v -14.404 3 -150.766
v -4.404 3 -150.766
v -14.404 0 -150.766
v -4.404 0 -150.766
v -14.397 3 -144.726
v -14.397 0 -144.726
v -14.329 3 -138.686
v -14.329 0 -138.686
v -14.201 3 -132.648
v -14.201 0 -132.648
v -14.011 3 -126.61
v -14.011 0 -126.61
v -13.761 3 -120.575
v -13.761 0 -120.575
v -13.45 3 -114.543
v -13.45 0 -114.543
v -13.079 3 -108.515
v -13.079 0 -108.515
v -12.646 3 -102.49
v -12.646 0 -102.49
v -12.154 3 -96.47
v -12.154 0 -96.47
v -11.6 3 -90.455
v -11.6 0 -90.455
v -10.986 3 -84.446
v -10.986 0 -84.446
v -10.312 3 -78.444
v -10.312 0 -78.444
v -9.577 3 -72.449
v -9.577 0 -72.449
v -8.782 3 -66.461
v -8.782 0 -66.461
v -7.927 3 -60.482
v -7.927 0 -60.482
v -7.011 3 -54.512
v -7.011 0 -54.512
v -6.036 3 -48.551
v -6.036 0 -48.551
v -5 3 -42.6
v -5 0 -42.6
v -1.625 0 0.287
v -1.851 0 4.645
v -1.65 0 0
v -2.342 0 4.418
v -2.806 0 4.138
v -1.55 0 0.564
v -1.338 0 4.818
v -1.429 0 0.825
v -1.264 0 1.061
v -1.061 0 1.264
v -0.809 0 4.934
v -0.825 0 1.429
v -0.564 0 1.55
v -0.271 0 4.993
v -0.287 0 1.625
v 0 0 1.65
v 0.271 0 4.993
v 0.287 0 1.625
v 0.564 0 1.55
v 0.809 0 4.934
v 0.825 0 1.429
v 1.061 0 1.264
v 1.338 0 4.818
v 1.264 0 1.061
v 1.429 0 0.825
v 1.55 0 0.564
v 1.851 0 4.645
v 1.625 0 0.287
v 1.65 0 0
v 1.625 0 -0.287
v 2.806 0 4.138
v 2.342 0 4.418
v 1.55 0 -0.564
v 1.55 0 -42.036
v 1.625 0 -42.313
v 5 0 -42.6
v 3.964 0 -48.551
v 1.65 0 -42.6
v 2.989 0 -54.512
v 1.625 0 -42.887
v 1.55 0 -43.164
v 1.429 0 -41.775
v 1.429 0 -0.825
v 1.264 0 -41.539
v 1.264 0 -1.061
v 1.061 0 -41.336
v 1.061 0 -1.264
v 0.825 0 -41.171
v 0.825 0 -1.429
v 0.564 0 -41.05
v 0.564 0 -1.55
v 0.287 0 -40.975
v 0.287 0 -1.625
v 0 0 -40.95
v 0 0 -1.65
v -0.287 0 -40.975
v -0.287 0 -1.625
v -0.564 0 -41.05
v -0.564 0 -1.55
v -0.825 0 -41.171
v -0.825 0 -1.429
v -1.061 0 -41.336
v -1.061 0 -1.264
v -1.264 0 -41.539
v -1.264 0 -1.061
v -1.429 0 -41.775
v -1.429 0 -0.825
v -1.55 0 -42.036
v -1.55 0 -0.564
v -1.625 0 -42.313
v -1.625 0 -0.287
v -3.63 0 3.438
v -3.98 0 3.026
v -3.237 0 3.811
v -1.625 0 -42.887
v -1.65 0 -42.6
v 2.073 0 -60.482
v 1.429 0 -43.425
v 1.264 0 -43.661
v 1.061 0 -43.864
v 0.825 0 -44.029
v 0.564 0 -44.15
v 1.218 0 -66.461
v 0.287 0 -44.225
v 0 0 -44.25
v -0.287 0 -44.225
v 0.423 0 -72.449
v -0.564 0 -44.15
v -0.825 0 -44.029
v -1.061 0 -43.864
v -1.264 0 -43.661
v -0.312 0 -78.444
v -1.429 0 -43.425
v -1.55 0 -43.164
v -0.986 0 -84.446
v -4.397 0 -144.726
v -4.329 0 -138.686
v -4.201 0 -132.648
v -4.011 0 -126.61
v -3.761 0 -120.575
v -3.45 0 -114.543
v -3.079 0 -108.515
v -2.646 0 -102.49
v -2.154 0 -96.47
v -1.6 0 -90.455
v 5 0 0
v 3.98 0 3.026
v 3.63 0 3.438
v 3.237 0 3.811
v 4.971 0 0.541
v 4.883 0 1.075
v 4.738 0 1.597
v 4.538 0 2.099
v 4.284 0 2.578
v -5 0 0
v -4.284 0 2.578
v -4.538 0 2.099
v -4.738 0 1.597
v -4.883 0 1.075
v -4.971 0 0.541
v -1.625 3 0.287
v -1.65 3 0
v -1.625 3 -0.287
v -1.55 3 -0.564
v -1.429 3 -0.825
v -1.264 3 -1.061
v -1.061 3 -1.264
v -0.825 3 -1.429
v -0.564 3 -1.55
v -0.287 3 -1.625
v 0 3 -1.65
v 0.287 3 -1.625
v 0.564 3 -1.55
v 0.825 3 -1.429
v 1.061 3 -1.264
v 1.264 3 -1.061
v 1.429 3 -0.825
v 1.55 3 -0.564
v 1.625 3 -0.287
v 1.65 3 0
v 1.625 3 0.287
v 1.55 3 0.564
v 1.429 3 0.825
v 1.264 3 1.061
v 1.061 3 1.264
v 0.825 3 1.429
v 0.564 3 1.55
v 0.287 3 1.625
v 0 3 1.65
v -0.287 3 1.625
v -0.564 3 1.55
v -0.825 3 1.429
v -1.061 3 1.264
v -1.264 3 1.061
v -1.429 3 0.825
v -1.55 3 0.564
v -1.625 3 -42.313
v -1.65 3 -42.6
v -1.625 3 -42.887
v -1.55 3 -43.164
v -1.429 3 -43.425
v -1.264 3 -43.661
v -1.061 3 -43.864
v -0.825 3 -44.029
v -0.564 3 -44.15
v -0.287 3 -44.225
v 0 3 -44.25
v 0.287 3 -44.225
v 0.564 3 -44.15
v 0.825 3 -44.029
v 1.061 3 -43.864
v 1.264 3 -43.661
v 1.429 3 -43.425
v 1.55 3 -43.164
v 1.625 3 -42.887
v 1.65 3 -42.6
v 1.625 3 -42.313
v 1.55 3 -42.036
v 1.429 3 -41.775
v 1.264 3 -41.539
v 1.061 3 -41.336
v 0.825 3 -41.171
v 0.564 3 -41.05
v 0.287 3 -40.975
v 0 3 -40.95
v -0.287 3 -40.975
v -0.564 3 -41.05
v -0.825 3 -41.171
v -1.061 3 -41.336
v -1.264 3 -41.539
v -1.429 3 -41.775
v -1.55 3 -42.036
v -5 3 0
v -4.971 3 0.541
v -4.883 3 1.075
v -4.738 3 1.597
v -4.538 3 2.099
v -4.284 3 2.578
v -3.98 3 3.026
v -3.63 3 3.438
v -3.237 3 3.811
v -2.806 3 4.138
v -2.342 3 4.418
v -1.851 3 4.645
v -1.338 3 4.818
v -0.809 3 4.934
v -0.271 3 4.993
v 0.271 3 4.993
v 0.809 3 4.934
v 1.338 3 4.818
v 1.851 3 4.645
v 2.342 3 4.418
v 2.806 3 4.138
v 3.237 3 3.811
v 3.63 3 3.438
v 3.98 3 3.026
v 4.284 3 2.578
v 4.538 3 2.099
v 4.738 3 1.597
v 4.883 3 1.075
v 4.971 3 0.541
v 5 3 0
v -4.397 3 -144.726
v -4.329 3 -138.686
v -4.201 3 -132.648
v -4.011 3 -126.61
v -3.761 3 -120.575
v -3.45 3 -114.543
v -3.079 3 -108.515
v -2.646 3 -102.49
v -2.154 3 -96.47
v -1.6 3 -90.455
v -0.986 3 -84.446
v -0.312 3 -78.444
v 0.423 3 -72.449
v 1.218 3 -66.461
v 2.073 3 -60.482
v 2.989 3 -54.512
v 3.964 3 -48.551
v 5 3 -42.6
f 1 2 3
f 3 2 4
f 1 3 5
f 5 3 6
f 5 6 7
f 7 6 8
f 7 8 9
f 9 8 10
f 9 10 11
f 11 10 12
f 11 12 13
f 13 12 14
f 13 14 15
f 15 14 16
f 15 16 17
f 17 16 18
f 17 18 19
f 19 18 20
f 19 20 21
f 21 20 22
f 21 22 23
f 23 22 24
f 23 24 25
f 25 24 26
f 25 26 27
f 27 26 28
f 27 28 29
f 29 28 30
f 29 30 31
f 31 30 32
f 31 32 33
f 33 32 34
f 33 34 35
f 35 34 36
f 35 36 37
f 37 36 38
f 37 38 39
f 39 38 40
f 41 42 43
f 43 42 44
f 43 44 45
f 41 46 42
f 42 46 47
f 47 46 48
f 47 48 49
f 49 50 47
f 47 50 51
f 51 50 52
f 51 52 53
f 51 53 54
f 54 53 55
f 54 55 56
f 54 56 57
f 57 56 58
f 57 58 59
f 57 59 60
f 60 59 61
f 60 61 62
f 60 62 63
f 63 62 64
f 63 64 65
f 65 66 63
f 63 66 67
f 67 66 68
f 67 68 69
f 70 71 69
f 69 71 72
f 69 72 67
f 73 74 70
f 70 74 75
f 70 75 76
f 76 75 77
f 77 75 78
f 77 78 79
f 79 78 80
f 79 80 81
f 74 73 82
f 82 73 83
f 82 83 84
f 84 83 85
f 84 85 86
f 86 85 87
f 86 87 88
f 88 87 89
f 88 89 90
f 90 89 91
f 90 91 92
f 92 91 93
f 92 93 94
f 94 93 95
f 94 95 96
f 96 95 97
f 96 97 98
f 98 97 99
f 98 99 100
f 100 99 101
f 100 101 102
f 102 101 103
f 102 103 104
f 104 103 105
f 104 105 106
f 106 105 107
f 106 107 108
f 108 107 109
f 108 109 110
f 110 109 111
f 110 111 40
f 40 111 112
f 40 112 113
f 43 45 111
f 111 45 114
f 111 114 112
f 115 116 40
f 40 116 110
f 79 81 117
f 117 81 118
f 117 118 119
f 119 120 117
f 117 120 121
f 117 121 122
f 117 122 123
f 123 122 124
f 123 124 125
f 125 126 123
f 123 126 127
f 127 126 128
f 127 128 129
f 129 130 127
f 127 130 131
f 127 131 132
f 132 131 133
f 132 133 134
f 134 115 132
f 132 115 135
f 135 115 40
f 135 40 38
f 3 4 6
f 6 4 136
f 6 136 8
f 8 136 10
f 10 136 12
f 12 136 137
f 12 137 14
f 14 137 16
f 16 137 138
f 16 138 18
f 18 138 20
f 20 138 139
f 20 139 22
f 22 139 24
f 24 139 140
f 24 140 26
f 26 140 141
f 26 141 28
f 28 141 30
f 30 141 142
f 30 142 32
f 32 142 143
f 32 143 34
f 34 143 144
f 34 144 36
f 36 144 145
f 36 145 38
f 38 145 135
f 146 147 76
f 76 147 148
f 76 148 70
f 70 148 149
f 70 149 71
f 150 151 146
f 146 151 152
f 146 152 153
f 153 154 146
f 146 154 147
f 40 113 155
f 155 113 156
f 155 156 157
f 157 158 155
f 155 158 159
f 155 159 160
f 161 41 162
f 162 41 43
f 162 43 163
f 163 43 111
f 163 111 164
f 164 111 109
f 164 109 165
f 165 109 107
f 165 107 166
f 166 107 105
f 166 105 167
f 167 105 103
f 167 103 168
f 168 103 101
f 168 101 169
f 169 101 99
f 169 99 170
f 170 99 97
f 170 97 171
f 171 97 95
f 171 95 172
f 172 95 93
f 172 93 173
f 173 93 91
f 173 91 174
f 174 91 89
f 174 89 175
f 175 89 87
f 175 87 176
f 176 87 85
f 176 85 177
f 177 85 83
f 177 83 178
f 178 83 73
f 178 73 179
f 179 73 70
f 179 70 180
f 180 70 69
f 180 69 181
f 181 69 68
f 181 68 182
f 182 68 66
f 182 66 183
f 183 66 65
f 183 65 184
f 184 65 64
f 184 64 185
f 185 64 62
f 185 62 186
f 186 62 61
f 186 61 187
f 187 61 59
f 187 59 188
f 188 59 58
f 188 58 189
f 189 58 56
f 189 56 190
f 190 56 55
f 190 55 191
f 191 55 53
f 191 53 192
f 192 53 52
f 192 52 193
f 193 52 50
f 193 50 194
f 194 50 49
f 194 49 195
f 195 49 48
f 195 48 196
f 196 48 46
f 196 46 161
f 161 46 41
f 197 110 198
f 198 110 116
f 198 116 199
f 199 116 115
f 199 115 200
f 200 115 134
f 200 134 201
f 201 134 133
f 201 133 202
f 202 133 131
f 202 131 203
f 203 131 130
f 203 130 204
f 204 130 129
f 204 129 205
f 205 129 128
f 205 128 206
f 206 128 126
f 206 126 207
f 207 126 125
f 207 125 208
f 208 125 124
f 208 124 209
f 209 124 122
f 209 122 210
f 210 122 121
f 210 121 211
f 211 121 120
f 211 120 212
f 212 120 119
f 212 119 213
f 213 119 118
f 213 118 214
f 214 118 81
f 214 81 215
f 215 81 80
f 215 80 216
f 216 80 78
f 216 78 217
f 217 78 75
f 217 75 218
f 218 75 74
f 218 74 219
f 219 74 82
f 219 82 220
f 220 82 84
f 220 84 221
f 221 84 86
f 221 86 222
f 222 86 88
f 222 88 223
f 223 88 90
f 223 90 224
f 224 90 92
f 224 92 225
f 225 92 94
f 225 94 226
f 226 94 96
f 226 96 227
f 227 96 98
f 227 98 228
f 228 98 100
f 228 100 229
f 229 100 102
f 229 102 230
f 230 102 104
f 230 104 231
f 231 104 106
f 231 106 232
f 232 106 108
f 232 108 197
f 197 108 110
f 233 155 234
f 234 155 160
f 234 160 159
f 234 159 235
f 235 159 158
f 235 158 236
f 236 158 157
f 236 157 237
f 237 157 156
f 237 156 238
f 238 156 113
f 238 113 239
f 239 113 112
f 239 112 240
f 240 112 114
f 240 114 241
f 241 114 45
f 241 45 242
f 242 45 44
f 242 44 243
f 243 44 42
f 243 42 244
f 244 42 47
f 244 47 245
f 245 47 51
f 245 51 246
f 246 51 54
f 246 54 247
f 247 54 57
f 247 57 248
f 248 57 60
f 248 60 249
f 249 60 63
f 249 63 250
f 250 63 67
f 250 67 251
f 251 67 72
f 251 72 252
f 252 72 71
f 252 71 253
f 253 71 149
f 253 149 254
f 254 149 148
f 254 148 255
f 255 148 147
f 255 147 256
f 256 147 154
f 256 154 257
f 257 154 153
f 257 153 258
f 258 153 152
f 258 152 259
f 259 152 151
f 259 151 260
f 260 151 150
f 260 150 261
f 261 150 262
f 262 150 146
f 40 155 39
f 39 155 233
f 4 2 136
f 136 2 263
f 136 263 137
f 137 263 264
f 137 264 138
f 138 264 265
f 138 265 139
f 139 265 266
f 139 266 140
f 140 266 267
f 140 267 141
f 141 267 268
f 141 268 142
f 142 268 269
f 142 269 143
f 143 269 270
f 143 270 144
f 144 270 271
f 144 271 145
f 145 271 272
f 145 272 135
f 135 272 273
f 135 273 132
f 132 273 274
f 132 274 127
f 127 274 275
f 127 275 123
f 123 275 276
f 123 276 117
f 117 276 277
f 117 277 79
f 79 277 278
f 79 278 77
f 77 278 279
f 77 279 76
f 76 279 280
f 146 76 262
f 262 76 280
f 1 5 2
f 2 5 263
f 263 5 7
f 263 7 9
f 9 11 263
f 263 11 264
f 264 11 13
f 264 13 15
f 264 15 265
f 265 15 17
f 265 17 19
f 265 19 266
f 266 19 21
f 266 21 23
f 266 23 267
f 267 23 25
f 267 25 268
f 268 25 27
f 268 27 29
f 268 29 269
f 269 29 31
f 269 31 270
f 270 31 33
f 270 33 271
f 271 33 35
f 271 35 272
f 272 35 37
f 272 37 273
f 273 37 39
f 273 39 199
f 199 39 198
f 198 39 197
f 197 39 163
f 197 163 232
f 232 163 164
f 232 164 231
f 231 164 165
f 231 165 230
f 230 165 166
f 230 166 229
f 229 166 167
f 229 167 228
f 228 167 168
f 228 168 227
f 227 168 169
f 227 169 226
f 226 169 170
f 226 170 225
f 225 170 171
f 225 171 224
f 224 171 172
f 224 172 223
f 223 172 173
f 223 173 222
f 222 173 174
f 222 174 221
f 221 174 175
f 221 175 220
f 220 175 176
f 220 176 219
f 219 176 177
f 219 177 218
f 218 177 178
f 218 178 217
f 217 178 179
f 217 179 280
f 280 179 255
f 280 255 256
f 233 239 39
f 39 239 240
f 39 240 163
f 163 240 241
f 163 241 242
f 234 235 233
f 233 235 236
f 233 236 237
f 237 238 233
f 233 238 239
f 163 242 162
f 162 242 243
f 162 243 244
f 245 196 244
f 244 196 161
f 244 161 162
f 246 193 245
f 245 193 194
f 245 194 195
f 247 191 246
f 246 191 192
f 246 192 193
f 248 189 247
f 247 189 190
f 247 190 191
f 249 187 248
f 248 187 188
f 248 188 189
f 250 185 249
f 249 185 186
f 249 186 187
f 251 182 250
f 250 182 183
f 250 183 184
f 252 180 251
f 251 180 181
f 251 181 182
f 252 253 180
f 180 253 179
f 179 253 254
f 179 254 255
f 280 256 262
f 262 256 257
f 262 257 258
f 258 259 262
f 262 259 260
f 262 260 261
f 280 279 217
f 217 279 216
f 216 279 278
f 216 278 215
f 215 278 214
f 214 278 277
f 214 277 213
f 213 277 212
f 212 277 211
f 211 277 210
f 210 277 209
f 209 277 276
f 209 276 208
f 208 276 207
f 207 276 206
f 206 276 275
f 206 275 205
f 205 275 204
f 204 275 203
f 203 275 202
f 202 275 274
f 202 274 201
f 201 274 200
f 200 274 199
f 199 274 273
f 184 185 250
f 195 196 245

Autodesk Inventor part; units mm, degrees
ref_plane "YZ Plane" through (0, 0, 0) normal (1, 0, 0) x (0, 1, 0)
ref_plane "XZ Plane" through (0, 0, 0) normal (0, 1, 0) x (-1, 0, 0)
ref_plane "XY Plane" through (0, 0, 0) normal (0, 0, 1) x (1, 0, 0)
sketch "Sketch1" plane through (0, 0, 0) normal (0, 1, 0) x (-1, 0, 0)
  line L0 (0, 0) -> (0, -312.648) construction
  line L1 (5, 0) -> (5, -312.648)
  line L2 (-5, -312.648) -> (-5, 0)
  arc A0 (5, 0) -> (-5, 0) centre (0, 0) ccw
  arc A1 (-5, -312.648) -> (5, -312.648) centre (0, -312.648) ccw
  circle A2 centre (0, 0) radius 1.65
  circle A3 centre (0, -312.648) radius 1.65
  circle A4 centre (0, -42.6) radius 1.65
  circle A5 centre (0, -254.274) radius 1.65
  arc A6 (5, -254.274) -> (5, -42.6) centre (-585.5917, -148.437) ccw
  arc A7 (-5, -254.274) -> (-5, -42.6) centre (-595.5917, -148.437) ccw
  point P0 (0, -156.324)
  dimension "d0" = 3.3
  dimension "d1" = 3.3
  dimension "d2" = 10
  dimension "d3" = 312.648
  dimension "d10" = 3.3
  dimension "d11" = 42.6
  dimension "d12" = 3.3
  dimension "d13" = 254.274
  dimension "d16" = 600
  dimension "d17" = 600
extrude "Extrusion1" add sketch "Sketch1" along normal blind 3 contours L1 A1 L2 A7 A0 | A6 L1
sketch "Sketch2" plane through (0, 3, 0) normal (0, 1, 0) x (1, 0, 0)
  line L0 (-83.1437, 348.5388) -> (78.2815, 348.5388)
  line L1 (78.2815, 348.5388) -> (78.2815, -47.0064)
  line L2 (78.2815, -47.0064) -> (-83.1437, -47.0064)
  line L3 (-83.1437, -47.0064) -> (-83.1437, 348.5388)
  line L4 (-31.117, 331.0778) -> (31.6, 331.0778)
  line L5 (31.6, 331.0778) -> (31.6, 150.7662)
  line L6 (31.6, 150.7662) -> (-31.117, 150.7662)
  line L7 (-31.117, 150.7662) -> (-31.117, 331.0778)
  point P0 (0, 0)
extrude "Extrusion2" cut sketch "Sketch2" against normal blind 10 contours L4 L5 L6 L7
properties part number "Part_5_p1"
